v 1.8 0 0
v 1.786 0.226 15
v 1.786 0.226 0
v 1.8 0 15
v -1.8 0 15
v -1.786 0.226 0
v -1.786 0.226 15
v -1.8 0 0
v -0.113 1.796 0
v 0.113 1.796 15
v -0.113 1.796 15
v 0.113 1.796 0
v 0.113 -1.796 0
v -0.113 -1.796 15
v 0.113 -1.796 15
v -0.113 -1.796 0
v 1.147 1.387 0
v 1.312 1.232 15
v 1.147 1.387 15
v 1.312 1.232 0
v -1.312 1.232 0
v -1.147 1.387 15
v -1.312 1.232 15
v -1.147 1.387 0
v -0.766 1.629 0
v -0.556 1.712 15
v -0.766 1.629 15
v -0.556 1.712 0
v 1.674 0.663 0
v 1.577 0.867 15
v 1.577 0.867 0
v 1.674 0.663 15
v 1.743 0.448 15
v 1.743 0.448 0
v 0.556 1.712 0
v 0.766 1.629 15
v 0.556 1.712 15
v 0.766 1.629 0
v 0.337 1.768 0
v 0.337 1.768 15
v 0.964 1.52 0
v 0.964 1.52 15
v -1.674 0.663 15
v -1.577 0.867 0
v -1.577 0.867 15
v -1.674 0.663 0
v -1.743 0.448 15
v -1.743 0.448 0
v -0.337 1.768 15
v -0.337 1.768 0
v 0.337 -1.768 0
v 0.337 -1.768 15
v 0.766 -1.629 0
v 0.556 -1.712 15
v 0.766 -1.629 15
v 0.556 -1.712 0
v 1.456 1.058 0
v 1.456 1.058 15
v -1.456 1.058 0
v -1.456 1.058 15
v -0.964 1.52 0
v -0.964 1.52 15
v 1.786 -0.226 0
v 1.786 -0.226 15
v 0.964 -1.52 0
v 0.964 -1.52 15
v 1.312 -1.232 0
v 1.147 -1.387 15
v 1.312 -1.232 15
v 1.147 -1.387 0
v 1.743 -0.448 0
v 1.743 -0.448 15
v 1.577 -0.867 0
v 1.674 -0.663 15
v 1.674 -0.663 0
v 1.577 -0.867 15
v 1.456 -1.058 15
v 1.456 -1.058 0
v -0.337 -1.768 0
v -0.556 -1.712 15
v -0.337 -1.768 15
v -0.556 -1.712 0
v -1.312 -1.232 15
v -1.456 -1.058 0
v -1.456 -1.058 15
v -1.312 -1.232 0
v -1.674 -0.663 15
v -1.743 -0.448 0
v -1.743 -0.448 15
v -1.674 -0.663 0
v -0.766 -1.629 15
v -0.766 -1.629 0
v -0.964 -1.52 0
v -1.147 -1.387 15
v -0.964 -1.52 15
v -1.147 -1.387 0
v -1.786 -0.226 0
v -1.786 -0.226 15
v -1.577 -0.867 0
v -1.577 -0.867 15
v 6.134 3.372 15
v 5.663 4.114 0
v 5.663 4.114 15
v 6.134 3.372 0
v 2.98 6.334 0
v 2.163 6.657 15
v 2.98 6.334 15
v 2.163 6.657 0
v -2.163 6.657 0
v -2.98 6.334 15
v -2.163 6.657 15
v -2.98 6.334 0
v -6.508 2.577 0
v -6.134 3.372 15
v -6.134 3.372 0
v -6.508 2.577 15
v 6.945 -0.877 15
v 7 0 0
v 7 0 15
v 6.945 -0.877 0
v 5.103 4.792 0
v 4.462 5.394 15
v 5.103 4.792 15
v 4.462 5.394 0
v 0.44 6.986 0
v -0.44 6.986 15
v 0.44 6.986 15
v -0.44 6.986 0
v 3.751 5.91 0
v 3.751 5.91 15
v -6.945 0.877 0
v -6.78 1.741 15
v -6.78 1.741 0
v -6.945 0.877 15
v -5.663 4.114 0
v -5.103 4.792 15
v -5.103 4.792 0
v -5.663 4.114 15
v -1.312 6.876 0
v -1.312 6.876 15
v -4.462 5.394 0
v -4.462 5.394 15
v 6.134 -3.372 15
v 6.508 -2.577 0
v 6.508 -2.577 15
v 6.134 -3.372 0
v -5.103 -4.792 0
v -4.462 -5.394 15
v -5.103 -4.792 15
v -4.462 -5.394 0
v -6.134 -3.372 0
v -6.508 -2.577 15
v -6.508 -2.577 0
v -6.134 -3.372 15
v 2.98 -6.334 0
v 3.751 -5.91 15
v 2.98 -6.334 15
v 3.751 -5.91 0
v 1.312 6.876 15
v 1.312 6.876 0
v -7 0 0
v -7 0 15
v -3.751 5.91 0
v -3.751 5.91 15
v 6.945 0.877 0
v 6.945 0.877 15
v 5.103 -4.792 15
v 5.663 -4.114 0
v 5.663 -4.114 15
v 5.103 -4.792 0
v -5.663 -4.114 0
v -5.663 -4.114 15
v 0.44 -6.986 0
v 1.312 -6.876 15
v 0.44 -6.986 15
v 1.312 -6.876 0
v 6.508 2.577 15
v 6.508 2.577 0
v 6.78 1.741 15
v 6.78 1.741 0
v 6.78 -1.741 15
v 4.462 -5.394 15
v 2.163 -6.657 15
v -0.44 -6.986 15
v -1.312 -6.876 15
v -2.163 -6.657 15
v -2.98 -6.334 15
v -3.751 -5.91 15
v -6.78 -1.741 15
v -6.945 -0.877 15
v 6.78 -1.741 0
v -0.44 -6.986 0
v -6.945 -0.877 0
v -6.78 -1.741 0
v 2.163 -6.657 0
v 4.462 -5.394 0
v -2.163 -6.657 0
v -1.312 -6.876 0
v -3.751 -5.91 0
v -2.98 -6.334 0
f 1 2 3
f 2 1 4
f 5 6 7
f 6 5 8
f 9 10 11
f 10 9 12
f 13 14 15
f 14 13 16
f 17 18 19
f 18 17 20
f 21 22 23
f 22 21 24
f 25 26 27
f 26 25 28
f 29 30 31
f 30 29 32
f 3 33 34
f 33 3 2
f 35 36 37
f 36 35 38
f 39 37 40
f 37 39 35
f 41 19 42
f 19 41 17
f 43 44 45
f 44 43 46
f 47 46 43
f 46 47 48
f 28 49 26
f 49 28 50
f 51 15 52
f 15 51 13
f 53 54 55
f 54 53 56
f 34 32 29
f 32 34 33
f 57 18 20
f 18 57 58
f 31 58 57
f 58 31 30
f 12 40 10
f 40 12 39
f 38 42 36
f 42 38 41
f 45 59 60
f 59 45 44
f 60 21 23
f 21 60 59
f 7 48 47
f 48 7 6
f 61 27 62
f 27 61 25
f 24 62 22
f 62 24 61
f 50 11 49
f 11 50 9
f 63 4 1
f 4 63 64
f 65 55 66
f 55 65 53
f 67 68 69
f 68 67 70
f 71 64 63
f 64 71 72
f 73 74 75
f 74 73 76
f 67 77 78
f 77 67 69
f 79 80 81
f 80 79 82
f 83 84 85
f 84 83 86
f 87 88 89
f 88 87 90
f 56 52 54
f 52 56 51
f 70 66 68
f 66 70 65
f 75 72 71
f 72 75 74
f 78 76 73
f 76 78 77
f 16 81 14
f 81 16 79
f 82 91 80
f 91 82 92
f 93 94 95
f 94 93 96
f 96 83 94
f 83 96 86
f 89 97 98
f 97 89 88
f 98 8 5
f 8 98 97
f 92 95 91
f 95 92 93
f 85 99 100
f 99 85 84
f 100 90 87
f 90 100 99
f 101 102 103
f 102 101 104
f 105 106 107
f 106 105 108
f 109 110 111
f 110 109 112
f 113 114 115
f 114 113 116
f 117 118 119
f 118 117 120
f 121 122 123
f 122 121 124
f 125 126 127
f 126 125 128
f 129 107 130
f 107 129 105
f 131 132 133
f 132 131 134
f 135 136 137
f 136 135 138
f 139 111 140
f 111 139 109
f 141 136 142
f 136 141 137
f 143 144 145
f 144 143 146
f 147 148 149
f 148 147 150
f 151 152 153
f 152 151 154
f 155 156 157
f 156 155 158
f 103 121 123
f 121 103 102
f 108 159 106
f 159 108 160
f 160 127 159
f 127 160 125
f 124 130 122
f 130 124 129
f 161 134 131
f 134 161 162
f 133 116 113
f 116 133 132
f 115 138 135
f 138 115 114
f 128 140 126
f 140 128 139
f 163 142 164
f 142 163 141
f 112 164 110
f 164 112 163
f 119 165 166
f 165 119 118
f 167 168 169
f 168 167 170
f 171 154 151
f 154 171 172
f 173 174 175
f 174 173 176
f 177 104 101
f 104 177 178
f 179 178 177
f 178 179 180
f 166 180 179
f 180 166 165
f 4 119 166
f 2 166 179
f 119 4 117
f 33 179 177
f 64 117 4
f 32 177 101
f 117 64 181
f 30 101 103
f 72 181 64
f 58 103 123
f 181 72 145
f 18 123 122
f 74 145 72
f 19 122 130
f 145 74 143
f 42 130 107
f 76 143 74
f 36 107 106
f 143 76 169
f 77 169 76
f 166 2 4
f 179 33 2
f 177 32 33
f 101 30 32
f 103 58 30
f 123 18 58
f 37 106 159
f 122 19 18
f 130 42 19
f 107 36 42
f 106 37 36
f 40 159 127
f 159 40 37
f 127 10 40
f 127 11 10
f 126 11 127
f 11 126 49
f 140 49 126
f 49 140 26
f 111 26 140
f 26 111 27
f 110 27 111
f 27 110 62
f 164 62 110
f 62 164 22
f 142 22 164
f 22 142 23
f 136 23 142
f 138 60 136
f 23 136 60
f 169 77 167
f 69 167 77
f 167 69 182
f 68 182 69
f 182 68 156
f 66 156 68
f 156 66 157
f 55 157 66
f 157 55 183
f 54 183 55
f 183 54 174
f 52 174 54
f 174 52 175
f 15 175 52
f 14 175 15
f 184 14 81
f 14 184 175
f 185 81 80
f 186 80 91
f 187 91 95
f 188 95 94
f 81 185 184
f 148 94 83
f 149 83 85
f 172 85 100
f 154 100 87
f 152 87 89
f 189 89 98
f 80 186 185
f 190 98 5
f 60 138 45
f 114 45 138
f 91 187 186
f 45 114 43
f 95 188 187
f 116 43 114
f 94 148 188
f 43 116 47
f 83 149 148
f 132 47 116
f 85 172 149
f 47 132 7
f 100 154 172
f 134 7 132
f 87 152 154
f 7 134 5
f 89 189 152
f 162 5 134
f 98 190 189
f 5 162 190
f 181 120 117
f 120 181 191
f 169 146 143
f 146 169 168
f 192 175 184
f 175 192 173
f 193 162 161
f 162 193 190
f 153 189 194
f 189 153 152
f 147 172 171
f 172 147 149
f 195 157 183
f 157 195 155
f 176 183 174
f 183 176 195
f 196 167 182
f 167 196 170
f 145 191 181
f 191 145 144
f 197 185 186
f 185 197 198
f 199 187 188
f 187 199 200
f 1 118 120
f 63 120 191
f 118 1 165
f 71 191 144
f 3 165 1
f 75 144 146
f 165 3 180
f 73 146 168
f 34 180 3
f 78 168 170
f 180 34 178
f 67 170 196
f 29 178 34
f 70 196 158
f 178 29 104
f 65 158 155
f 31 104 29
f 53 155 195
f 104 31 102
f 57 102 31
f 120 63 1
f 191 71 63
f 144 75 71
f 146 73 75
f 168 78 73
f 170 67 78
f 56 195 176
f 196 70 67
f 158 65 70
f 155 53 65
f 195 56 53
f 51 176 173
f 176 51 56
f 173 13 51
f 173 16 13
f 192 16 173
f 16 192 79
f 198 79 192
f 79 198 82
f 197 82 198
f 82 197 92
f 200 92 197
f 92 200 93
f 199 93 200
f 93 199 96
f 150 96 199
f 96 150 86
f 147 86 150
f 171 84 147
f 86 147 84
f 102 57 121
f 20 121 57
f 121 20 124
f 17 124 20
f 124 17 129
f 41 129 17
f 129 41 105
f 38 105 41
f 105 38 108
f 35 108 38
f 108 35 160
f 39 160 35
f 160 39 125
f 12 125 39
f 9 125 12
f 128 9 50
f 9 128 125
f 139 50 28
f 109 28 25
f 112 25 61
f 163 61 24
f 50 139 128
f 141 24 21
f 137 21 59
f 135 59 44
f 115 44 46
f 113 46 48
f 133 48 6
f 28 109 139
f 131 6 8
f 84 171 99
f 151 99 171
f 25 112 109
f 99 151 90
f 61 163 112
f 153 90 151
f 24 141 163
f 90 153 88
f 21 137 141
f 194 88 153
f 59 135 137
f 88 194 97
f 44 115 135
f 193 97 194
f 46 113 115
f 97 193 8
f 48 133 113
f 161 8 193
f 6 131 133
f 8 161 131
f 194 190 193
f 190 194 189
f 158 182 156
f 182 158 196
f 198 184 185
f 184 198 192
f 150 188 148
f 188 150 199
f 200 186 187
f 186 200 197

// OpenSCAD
$fn = 50;


difference() {
	union() {
		cylinder(h = 15, r = 7.0000000000);
	}
	union() {
		translate(v = [0.0000000000, 0.0000000000, -100.0000000000]) {
			cylinder(h = 200, r = 1.8000000000);
		}
		cylinder(h = 15, r = 1.8000000000);
		cylinder(h = 15, r = 1.8000000000);
		cylinder(h = 15, r = 1.8000000000);
	}
}
